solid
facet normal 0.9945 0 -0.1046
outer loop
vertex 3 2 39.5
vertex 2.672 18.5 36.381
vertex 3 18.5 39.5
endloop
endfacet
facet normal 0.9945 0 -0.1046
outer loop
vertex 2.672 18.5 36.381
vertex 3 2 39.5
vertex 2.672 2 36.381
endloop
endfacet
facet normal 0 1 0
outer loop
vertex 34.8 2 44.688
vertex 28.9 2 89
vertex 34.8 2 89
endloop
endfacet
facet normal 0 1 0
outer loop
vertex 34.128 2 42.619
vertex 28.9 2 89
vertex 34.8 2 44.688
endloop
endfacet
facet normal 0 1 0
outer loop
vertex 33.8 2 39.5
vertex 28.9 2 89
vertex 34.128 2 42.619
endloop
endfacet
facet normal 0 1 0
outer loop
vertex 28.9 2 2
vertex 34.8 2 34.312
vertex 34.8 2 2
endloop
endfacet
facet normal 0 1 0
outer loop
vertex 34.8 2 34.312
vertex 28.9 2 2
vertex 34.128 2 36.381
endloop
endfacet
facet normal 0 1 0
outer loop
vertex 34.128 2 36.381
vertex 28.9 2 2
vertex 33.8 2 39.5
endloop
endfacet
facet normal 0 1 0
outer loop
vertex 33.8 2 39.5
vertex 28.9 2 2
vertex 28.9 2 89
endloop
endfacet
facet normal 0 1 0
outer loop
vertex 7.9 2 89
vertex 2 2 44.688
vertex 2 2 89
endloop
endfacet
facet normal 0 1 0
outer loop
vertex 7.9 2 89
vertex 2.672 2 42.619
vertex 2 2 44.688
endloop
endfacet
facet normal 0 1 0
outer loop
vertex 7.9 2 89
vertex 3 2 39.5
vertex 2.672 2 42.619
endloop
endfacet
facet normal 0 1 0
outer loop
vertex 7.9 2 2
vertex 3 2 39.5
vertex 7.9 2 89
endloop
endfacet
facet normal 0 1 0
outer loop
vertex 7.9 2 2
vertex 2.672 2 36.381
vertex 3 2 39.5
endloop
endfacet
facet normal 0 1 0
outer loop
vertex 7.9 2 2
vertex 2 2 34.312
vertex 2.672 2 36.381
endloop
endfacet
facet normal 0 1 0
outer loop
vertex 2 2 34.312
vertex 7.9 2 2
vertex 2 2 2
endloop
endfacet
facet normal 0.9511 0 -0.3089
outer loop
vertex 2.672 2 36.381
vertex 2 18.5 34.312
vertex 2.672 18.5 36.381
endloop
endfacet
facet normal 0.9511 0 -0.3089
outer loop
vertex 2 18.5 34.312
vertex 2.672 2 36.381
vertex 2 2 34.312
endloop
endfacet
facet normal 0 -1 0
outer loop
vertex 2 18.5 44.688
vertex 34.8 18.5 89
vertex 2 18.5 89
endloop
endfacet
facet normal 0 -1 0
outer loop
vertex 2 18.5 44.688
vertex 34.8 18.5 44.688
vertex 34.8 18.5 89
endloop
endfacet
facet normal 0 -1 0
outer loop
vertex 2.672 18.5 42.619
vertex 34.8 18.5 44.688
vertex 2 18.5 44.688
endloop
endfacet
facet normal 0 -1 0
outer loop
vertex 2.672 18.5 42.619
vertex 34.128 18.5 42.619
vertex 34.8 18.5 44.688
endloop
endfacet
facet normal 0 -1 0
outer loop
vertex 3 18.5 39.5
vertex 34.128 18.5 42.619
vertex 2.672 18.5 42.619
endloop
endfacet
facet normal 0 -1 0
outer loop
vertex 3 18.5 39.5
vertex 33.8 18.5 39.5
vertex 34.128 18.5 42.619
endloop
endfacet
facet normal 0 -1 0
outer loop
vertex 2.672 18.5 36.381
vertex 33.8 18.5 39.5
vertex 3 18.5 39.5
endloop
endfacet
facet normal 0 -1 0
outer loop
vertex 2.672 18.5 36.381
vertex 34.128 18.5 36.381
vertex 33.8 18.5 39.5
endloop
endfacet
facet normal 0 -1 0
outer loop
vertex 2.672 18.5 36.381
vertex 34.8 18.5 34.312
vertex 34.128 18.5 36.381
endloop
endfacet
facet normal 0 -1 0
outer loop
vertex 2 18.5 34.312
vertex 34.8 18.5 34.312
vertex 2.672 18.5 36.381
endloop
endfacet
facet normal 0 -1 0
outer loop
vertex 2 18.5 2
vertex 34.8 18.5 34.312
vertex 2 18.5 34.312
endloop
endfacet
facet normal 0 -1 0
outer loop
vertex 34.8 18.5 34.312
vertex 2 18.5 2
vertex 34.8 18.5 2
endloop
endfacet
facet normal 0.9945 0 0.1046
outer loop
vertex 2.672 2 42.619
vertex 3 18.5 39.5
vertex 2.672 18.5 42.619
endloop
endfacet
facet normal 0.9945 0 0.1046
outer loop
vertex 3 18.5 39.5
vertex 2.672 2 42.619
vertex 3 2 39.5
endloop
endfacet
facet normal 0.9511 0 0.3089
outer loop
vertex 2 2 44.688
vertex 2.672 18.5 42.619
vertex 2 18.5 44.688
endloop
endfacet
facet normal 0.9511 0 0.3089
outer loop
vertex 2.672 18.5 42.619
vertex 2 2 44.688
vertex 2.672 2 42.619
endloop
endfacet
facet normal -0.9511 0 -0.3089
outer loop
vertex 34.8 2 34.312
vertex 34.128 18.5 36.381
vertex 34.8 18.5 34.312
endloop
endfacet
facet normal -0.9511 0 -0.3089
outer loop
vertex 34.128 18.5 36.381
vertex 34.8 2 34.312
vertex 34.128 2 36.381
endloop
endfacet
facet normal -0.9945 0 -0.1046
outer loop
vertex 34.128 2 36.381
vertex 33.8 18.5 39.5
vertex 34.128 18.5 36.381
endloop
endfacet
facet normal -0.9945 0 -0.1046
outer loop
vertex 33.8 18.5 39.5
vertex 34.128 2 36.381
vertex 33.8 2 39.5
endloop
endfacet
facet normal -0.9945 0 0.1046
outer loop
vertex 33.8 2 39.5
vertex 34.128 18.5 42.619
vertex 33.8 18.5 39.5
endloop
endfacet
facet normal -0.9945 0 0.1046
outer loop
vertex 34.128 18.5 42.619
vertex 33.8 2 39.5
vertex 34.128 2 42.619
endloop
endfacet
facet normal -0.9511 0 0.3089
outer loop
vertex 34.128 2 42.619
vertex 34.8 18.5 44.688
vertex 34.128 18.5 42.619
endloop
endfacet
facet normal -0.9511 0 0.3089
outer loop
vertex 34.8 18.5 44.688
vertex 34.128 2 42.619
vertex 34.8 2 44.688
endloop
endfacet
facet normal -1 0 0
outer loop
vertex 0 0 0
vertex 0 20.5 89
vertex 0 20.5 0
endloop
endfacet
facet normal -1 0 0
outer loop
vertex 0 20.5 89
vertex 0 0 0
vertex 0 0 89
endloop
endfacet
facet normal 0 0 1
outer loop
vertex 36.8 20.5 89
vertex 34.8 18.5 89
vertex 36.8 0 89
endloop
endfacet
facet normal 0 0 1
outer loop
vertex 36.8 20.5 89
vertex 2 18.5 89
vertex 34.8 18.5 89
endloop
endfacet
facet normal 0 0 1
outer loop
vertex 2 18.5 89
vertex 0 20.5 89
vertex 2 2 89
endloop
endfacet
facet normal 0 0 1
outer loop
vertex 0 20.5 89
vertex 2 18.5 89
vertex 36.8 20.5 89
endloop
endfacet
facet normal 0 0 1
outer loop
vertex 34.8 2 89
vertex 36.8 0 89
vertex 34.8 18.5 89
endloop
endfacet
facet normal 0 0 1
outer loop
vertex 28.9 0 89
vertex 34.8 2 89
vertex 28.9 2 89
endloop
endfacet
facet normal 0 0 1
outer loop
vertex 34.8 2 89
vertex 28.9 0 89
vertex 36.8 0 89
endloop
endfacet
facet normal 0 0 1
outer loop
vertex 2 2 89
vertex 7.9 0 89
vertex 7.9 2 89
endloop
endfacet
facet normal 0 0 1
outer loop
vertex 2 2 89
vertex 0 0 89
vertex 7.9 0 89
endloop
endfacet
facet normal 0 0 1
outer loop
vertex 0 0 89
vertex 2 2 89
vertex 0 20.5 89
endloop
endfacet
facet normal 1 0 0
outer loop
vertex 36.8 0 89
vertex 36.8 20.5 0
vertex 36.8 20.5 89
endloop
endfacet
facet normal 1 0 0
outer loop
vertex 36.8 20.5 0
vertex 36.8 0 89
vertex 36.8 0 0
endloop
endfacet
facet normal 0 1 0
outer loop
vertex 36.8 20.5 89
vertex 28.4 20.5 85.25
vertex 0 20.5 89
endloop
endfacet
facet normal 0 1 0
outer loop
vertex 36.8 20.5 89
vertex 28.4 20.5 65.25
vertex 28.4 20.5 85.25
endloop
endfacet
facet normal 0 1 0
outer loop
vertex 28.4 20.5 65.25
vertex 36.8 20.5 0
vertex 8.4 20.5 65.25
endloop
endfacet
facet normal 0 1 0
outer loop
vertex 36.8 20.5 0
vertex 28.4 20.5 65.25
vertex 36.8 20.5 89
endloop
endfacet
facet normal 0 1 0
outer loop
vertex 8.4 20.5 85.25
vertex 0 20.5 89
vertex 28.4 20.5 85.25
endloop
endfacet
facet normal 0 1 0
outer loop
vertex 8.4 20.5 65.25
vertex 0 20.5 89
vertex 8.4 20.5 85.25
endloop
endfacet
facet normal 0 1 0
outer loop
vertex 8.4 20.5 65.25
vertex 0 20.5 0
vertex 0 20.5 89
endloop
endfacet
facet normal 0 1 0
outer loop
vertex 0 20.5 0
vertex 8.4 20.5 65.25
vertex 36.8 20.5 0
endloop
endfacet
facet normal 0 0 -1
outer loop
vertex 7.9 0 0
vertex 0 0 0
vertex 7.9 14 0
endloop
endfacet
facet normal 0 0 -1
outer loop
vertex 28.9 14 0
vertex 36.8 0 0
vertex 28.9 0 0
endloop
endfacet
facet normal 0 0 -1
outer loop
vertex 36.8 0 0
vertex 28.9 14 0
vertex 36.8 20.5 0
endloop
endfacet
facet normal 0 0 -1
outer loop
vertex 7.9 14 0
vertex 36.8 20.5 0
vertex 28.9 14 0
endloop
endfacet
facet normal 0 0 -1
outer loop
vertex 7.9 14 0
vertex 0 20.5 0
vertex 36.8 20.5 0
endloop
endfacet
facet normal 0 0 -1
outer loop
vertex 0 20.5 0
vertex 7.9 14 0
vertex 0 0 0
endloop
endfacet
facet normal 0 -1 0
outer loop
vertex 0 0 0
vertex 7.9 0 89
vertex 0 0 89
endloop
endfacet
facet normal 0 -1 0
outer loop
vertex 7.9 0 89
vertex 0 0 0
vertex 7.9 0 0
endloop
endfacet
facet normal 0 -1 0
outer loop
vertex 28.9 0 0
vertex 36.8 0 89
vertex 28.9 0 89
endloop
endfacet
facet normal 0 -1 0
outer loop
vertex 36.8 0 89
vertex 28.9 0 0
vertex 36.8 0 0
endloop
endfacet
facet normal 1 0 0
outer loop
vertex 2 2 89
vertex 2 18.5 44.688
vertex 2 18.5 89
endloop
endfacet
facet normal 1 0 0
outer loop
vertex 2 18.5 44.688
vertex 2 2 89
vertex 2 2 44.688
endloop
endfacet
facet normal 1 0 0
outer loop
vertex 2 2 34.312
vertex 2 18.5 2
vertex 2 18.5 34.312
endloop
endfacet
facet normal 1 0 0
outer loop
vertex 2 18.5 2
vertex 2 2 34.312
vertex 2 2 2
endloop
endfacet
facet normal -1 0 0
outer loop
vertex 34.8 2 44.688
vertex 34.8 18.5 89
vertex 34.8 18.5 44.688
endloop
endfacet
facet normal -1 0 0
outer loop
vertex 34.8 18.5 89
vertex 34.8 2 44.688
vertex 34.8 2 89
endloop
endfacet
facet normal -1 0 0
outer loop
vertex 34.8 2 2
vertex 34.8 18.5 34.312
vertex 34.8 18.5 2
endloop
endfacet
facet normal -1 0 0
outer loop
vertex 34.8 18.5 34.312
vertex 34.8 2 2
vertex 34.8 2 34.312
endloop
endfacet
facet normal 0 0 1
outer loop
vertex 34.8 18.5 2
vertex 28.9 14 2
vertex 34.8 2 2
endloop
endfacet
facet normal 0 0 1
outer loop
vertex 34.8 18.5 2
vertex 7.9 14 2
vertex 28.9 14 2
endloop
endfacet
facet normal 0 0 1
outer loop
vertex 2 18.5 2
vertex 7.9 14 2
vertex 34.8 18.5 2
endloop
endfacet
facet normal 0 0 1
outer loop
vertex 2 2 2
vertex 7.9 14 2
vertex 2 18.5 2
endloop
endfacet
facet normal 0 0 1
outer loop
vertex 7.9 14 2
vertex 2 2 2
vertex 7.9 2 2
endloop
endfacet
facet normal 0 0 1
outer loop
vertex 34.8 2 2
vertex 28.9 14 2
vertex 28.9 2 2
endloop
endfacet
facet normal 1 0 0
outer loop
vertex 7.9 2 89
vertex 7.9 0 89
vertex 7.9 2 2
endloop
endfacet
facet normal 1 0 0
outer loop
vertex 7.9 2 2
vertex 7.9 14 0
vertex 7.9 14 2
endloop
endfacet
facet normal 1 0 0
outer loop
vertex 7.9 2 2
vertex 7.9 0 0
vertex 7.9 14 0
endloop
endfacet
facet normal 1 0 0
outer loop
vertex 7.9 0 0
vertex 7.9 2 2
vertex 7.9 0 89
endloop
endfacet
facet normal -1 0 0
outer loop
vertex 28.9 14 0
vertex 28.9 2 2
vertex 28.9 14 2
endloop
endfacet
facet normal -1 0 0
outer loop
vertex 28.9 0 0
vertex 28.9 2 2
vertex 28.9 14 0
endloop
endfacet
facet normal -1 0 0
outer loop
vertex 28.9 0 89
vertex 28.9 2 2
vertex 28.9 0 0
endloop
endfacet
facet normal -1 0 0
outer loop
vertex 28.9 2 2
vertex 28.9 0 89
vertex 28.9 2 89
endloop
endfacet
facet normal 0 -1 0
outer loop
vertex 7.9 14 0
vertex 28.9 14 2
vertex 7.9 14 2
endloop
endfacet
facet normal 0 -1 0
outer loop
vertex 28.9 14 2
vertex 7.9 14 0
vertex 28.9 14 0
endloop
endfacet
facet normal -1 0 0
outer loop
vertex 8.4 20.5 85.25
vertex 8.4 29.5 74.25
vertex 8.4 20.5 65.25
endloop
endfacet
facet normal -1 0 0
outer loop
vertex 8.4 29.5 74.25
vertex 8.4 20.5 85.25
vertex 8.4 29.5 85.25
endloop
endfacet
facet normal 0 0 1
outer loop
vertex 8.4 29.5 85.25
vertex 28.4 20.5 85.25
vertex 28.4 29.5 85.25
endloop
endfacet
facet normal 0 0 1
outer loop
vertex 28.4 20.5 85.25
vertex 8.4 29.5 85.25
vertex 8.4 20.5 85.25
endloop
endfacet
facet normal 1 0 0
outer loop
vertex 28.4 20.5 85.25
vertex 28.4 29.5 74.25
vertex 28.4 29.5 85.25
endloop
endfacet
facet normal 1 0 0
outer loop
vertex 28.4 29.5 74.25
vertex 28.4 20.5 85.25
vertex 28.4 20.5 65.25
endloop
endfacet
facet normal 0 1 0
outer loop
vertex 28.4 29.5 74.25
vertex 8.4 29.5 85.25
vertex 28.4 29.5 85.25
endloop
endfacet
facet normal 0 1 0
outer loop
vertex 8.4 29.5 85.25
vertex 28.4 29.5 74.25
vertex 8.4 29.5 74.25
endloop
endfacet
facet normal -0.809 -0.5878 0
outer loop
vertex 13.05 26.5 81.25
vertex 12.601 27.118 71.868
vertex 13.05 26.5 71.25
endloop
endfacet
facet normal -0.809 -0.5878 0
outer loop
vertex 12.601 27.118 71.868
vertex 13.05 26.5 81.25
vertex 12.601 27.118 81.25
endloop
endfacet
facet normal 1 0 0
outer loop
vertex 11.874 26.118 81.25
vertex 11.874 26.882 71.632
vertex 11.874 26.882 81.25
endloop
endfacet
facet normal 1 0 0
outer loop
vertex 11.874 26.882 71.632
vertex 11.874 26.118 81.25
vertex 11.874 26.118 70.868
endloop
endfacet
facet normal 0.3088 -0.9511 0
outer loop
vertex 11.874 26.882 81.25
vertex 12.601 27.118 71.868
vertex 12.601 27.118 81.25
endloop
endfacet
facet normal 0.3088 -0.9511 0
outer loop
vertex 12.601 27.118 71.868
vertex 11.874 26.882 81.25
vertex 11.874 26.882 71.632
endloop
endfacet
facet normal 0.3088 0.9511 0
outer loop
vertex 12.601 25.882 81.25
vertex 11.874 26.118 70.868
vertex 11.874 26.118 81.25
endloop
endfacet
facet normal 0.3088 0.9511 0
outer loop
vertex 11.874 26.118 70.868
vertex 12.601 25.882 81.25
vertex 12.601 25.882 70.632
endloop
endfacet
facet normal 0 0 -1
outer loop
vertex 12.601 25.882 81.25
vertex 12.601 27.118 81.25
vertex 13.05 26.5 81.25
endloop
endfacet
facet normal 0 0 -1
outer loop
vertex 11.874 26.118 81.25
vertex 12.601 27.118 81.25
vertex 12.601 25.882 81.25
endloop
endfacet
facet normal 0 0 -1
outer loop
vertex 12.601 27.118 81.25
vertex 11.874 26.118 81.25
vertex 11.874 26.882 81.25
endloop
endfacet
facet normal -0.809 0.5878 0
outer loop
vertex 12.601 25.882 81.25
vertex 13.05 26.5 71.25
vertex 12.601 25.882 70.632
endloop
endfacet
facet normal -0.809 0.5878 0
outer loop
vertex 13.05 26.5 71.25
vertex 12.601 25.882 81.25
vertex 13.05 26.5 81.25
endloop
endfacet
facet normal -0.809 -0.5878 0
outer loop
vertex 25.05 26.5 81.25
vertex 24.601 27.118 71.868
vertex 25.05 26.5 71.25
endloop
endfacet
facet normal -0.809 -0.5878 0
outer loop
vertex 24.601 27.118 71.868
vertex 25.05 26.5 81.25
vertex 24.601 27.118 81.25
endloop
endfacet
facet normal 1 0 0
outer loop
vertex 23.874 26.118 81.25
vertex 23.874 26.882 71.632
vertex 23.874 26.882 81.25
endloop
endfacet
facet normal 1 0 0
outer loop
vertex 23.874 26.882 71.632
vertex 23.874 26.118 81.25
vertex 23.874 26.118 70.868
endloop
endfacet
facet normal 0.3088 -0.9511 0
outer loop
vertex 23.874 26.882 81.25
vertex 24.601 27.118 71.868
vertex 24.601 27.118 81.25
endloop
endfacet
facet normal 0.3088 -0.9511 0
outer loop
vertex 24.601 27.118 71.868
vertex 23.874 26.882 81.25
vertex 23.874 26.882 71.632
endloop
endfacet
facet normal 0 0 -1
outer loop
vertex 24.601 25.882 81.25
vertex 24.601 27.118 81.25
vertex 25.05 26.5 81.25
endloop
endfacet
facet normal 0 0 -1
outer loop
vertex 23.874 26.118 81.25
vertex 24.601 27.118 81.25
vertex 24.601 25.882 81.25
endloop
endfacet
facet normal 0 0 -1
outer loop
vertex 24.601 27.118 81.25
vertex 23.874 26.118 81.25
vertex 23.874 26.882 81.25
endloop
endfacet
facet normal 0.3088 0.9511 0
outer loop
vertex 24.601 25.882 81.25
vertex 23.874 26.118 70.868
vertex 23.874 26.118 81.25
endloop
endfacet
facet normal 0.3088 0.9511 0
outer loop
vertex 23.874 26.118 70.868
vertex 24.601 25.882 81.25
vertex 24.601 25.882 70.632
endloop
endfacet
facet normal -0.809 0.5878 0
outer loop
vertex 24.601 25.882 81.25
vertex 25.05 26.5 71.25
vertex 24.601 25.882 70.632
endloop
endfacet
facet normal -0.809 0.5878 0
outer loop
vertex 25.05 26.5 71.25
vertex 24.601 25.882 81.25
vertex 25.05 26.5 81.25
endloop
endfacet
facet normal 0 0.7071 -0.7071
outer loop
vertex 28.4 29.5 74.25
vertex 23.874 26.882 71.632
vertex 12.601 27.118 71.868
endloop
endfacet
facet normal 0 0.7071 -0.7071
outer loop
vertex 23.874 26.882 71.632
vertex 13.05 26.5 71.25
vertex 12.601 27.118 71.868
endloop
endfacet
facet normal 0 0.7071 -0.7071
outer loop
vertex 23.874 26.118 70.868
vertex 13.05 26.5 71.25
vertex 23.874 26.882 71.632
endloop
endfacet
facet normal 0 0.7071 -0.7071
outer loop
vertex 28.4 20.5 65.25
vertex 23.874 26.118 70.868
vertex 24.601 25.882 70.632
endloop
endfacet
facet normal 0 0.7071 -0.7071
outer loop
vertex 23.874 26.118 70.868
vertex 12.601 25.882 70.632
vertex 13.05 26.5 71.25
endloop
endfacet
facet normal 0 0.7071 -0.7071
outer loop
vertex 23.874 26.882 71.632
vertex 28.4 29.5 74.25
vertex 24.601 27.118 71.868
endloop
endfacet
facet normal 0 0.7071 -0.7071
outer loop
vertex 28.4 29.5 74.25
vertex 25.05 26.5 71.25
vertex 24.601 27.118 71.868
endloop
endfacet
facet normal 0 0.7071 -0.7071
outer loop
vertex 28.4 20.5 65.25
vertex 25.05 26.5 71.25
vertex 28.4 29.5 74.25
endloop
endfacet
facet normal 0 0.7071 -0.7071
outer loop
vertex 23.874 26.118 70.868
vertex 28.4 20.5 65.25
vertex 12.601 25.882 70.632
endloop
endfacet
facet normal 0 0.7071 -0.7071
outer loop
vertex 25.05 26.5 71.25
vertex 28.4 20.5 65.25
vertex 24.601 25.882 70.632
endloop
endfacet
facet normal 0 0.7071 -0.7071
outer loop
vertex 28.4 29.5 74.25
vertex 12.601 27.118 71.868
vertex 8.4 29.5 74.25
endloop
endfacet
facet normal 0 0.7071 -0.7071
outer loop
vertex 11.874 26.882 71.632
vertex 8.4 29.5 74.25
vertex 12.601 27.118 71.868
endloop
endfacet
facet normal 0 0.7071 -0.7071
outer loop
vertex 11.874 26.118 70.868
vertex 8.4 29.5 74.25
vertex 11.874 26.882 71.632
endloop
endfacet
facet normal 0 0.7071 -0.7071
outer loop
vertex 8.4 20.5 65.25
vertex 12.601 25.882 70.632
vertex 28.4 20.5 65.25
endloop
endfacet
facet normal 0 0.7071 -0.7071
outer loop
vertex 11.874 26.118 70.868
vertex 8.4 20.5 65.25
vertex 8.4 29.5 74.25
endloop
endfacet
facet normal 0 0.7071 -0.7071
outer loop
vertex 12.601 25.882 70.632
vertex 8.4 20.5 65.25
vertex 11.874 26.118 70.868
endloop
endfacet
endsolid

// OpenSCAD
//shell
wall=2;

//leatherman dimensions
l_w=32.8;
l_d=16.5;
l_h=102-15;

// finger cutout
cutout_w=21;
cutout_d=14;

// inside bumps
bumps_h=37.5;  //bottom of leatherman to center of bumps
bumps_r=15;  //radius of bumps
bumps_p=1;  // protrusion of bumps

// CALCULATED PARAMS.
o_w=l_w+2*wall;
o_h=l_h+wall;
o_d=l_d+2*wall;


// (Shell + bumps) - bump extras
difference(){
    // Shell + bumps
    union(){
        // Shell
        difference(){
            //main frame
            cube([o_w,o_d,o_h]);
            
            // center cutout.  must fit leatherman
            translate([wall,wall,wall]){
                cube([l_w,l_d,l_h]);
            }
            
            // cutout for finger pull
            translate([o_w/2- cutout_w/2,0,0]){
                cube([cutout_w,cutout_d,o_h]);
            }
        }
        
        // Bumps
        translate([wall,wall,bumps_h+wall]){
            translate([-1*bumps_r+bumps_p,0,0]){
                rotate([-90,0,0]){
                    cylinder(h=l_d, r=bumps_r);
                }
            }
            translate([l_w+bumps_r-bumps_p,0,0]){
                rotate([-90,0,0]){
                    cylinder(h=l_d, r=bumps_r);
                }
            }
        }
        
    }
    
    // Slice the sides off the bumps
    translate([-2*bumps_r,0,0]){
        cube([2*bumps_r,o_d,o_h]);
    }
    translate([o_w,0,0]){
        cube([2*bumps_r,o_d,o_h]);
    }
}

// Brackets

bracket_w=20;
bracket_h=20;
bracket_d=9;

pclip_r=.65;
pclip_s=12;
pclip_offset=6;

//paperclip bracket
translate([o_w/2-bracket_w/2, o_d,l_h*.75]){
    difference(){
        cube([bracket_w,bracket_d,bracket_h]);
        
        // holes
        translate([(bracket_w/2)-(pclip_s/2),pclip_offset,-4]){
            cylinder(h=bracket_h, r=pclip_r);
        }
        translate([(bracket_w/2)+(pclip_s/2),pclip_offset,-4]){
            cylinder(h=bracket_h, r=pclip_r);
        }
        
        //bevel
        rotate([-45,0,0]){
            cube([bracket_w,bracket_d*3,bracket_h]);
        }

    }
}
